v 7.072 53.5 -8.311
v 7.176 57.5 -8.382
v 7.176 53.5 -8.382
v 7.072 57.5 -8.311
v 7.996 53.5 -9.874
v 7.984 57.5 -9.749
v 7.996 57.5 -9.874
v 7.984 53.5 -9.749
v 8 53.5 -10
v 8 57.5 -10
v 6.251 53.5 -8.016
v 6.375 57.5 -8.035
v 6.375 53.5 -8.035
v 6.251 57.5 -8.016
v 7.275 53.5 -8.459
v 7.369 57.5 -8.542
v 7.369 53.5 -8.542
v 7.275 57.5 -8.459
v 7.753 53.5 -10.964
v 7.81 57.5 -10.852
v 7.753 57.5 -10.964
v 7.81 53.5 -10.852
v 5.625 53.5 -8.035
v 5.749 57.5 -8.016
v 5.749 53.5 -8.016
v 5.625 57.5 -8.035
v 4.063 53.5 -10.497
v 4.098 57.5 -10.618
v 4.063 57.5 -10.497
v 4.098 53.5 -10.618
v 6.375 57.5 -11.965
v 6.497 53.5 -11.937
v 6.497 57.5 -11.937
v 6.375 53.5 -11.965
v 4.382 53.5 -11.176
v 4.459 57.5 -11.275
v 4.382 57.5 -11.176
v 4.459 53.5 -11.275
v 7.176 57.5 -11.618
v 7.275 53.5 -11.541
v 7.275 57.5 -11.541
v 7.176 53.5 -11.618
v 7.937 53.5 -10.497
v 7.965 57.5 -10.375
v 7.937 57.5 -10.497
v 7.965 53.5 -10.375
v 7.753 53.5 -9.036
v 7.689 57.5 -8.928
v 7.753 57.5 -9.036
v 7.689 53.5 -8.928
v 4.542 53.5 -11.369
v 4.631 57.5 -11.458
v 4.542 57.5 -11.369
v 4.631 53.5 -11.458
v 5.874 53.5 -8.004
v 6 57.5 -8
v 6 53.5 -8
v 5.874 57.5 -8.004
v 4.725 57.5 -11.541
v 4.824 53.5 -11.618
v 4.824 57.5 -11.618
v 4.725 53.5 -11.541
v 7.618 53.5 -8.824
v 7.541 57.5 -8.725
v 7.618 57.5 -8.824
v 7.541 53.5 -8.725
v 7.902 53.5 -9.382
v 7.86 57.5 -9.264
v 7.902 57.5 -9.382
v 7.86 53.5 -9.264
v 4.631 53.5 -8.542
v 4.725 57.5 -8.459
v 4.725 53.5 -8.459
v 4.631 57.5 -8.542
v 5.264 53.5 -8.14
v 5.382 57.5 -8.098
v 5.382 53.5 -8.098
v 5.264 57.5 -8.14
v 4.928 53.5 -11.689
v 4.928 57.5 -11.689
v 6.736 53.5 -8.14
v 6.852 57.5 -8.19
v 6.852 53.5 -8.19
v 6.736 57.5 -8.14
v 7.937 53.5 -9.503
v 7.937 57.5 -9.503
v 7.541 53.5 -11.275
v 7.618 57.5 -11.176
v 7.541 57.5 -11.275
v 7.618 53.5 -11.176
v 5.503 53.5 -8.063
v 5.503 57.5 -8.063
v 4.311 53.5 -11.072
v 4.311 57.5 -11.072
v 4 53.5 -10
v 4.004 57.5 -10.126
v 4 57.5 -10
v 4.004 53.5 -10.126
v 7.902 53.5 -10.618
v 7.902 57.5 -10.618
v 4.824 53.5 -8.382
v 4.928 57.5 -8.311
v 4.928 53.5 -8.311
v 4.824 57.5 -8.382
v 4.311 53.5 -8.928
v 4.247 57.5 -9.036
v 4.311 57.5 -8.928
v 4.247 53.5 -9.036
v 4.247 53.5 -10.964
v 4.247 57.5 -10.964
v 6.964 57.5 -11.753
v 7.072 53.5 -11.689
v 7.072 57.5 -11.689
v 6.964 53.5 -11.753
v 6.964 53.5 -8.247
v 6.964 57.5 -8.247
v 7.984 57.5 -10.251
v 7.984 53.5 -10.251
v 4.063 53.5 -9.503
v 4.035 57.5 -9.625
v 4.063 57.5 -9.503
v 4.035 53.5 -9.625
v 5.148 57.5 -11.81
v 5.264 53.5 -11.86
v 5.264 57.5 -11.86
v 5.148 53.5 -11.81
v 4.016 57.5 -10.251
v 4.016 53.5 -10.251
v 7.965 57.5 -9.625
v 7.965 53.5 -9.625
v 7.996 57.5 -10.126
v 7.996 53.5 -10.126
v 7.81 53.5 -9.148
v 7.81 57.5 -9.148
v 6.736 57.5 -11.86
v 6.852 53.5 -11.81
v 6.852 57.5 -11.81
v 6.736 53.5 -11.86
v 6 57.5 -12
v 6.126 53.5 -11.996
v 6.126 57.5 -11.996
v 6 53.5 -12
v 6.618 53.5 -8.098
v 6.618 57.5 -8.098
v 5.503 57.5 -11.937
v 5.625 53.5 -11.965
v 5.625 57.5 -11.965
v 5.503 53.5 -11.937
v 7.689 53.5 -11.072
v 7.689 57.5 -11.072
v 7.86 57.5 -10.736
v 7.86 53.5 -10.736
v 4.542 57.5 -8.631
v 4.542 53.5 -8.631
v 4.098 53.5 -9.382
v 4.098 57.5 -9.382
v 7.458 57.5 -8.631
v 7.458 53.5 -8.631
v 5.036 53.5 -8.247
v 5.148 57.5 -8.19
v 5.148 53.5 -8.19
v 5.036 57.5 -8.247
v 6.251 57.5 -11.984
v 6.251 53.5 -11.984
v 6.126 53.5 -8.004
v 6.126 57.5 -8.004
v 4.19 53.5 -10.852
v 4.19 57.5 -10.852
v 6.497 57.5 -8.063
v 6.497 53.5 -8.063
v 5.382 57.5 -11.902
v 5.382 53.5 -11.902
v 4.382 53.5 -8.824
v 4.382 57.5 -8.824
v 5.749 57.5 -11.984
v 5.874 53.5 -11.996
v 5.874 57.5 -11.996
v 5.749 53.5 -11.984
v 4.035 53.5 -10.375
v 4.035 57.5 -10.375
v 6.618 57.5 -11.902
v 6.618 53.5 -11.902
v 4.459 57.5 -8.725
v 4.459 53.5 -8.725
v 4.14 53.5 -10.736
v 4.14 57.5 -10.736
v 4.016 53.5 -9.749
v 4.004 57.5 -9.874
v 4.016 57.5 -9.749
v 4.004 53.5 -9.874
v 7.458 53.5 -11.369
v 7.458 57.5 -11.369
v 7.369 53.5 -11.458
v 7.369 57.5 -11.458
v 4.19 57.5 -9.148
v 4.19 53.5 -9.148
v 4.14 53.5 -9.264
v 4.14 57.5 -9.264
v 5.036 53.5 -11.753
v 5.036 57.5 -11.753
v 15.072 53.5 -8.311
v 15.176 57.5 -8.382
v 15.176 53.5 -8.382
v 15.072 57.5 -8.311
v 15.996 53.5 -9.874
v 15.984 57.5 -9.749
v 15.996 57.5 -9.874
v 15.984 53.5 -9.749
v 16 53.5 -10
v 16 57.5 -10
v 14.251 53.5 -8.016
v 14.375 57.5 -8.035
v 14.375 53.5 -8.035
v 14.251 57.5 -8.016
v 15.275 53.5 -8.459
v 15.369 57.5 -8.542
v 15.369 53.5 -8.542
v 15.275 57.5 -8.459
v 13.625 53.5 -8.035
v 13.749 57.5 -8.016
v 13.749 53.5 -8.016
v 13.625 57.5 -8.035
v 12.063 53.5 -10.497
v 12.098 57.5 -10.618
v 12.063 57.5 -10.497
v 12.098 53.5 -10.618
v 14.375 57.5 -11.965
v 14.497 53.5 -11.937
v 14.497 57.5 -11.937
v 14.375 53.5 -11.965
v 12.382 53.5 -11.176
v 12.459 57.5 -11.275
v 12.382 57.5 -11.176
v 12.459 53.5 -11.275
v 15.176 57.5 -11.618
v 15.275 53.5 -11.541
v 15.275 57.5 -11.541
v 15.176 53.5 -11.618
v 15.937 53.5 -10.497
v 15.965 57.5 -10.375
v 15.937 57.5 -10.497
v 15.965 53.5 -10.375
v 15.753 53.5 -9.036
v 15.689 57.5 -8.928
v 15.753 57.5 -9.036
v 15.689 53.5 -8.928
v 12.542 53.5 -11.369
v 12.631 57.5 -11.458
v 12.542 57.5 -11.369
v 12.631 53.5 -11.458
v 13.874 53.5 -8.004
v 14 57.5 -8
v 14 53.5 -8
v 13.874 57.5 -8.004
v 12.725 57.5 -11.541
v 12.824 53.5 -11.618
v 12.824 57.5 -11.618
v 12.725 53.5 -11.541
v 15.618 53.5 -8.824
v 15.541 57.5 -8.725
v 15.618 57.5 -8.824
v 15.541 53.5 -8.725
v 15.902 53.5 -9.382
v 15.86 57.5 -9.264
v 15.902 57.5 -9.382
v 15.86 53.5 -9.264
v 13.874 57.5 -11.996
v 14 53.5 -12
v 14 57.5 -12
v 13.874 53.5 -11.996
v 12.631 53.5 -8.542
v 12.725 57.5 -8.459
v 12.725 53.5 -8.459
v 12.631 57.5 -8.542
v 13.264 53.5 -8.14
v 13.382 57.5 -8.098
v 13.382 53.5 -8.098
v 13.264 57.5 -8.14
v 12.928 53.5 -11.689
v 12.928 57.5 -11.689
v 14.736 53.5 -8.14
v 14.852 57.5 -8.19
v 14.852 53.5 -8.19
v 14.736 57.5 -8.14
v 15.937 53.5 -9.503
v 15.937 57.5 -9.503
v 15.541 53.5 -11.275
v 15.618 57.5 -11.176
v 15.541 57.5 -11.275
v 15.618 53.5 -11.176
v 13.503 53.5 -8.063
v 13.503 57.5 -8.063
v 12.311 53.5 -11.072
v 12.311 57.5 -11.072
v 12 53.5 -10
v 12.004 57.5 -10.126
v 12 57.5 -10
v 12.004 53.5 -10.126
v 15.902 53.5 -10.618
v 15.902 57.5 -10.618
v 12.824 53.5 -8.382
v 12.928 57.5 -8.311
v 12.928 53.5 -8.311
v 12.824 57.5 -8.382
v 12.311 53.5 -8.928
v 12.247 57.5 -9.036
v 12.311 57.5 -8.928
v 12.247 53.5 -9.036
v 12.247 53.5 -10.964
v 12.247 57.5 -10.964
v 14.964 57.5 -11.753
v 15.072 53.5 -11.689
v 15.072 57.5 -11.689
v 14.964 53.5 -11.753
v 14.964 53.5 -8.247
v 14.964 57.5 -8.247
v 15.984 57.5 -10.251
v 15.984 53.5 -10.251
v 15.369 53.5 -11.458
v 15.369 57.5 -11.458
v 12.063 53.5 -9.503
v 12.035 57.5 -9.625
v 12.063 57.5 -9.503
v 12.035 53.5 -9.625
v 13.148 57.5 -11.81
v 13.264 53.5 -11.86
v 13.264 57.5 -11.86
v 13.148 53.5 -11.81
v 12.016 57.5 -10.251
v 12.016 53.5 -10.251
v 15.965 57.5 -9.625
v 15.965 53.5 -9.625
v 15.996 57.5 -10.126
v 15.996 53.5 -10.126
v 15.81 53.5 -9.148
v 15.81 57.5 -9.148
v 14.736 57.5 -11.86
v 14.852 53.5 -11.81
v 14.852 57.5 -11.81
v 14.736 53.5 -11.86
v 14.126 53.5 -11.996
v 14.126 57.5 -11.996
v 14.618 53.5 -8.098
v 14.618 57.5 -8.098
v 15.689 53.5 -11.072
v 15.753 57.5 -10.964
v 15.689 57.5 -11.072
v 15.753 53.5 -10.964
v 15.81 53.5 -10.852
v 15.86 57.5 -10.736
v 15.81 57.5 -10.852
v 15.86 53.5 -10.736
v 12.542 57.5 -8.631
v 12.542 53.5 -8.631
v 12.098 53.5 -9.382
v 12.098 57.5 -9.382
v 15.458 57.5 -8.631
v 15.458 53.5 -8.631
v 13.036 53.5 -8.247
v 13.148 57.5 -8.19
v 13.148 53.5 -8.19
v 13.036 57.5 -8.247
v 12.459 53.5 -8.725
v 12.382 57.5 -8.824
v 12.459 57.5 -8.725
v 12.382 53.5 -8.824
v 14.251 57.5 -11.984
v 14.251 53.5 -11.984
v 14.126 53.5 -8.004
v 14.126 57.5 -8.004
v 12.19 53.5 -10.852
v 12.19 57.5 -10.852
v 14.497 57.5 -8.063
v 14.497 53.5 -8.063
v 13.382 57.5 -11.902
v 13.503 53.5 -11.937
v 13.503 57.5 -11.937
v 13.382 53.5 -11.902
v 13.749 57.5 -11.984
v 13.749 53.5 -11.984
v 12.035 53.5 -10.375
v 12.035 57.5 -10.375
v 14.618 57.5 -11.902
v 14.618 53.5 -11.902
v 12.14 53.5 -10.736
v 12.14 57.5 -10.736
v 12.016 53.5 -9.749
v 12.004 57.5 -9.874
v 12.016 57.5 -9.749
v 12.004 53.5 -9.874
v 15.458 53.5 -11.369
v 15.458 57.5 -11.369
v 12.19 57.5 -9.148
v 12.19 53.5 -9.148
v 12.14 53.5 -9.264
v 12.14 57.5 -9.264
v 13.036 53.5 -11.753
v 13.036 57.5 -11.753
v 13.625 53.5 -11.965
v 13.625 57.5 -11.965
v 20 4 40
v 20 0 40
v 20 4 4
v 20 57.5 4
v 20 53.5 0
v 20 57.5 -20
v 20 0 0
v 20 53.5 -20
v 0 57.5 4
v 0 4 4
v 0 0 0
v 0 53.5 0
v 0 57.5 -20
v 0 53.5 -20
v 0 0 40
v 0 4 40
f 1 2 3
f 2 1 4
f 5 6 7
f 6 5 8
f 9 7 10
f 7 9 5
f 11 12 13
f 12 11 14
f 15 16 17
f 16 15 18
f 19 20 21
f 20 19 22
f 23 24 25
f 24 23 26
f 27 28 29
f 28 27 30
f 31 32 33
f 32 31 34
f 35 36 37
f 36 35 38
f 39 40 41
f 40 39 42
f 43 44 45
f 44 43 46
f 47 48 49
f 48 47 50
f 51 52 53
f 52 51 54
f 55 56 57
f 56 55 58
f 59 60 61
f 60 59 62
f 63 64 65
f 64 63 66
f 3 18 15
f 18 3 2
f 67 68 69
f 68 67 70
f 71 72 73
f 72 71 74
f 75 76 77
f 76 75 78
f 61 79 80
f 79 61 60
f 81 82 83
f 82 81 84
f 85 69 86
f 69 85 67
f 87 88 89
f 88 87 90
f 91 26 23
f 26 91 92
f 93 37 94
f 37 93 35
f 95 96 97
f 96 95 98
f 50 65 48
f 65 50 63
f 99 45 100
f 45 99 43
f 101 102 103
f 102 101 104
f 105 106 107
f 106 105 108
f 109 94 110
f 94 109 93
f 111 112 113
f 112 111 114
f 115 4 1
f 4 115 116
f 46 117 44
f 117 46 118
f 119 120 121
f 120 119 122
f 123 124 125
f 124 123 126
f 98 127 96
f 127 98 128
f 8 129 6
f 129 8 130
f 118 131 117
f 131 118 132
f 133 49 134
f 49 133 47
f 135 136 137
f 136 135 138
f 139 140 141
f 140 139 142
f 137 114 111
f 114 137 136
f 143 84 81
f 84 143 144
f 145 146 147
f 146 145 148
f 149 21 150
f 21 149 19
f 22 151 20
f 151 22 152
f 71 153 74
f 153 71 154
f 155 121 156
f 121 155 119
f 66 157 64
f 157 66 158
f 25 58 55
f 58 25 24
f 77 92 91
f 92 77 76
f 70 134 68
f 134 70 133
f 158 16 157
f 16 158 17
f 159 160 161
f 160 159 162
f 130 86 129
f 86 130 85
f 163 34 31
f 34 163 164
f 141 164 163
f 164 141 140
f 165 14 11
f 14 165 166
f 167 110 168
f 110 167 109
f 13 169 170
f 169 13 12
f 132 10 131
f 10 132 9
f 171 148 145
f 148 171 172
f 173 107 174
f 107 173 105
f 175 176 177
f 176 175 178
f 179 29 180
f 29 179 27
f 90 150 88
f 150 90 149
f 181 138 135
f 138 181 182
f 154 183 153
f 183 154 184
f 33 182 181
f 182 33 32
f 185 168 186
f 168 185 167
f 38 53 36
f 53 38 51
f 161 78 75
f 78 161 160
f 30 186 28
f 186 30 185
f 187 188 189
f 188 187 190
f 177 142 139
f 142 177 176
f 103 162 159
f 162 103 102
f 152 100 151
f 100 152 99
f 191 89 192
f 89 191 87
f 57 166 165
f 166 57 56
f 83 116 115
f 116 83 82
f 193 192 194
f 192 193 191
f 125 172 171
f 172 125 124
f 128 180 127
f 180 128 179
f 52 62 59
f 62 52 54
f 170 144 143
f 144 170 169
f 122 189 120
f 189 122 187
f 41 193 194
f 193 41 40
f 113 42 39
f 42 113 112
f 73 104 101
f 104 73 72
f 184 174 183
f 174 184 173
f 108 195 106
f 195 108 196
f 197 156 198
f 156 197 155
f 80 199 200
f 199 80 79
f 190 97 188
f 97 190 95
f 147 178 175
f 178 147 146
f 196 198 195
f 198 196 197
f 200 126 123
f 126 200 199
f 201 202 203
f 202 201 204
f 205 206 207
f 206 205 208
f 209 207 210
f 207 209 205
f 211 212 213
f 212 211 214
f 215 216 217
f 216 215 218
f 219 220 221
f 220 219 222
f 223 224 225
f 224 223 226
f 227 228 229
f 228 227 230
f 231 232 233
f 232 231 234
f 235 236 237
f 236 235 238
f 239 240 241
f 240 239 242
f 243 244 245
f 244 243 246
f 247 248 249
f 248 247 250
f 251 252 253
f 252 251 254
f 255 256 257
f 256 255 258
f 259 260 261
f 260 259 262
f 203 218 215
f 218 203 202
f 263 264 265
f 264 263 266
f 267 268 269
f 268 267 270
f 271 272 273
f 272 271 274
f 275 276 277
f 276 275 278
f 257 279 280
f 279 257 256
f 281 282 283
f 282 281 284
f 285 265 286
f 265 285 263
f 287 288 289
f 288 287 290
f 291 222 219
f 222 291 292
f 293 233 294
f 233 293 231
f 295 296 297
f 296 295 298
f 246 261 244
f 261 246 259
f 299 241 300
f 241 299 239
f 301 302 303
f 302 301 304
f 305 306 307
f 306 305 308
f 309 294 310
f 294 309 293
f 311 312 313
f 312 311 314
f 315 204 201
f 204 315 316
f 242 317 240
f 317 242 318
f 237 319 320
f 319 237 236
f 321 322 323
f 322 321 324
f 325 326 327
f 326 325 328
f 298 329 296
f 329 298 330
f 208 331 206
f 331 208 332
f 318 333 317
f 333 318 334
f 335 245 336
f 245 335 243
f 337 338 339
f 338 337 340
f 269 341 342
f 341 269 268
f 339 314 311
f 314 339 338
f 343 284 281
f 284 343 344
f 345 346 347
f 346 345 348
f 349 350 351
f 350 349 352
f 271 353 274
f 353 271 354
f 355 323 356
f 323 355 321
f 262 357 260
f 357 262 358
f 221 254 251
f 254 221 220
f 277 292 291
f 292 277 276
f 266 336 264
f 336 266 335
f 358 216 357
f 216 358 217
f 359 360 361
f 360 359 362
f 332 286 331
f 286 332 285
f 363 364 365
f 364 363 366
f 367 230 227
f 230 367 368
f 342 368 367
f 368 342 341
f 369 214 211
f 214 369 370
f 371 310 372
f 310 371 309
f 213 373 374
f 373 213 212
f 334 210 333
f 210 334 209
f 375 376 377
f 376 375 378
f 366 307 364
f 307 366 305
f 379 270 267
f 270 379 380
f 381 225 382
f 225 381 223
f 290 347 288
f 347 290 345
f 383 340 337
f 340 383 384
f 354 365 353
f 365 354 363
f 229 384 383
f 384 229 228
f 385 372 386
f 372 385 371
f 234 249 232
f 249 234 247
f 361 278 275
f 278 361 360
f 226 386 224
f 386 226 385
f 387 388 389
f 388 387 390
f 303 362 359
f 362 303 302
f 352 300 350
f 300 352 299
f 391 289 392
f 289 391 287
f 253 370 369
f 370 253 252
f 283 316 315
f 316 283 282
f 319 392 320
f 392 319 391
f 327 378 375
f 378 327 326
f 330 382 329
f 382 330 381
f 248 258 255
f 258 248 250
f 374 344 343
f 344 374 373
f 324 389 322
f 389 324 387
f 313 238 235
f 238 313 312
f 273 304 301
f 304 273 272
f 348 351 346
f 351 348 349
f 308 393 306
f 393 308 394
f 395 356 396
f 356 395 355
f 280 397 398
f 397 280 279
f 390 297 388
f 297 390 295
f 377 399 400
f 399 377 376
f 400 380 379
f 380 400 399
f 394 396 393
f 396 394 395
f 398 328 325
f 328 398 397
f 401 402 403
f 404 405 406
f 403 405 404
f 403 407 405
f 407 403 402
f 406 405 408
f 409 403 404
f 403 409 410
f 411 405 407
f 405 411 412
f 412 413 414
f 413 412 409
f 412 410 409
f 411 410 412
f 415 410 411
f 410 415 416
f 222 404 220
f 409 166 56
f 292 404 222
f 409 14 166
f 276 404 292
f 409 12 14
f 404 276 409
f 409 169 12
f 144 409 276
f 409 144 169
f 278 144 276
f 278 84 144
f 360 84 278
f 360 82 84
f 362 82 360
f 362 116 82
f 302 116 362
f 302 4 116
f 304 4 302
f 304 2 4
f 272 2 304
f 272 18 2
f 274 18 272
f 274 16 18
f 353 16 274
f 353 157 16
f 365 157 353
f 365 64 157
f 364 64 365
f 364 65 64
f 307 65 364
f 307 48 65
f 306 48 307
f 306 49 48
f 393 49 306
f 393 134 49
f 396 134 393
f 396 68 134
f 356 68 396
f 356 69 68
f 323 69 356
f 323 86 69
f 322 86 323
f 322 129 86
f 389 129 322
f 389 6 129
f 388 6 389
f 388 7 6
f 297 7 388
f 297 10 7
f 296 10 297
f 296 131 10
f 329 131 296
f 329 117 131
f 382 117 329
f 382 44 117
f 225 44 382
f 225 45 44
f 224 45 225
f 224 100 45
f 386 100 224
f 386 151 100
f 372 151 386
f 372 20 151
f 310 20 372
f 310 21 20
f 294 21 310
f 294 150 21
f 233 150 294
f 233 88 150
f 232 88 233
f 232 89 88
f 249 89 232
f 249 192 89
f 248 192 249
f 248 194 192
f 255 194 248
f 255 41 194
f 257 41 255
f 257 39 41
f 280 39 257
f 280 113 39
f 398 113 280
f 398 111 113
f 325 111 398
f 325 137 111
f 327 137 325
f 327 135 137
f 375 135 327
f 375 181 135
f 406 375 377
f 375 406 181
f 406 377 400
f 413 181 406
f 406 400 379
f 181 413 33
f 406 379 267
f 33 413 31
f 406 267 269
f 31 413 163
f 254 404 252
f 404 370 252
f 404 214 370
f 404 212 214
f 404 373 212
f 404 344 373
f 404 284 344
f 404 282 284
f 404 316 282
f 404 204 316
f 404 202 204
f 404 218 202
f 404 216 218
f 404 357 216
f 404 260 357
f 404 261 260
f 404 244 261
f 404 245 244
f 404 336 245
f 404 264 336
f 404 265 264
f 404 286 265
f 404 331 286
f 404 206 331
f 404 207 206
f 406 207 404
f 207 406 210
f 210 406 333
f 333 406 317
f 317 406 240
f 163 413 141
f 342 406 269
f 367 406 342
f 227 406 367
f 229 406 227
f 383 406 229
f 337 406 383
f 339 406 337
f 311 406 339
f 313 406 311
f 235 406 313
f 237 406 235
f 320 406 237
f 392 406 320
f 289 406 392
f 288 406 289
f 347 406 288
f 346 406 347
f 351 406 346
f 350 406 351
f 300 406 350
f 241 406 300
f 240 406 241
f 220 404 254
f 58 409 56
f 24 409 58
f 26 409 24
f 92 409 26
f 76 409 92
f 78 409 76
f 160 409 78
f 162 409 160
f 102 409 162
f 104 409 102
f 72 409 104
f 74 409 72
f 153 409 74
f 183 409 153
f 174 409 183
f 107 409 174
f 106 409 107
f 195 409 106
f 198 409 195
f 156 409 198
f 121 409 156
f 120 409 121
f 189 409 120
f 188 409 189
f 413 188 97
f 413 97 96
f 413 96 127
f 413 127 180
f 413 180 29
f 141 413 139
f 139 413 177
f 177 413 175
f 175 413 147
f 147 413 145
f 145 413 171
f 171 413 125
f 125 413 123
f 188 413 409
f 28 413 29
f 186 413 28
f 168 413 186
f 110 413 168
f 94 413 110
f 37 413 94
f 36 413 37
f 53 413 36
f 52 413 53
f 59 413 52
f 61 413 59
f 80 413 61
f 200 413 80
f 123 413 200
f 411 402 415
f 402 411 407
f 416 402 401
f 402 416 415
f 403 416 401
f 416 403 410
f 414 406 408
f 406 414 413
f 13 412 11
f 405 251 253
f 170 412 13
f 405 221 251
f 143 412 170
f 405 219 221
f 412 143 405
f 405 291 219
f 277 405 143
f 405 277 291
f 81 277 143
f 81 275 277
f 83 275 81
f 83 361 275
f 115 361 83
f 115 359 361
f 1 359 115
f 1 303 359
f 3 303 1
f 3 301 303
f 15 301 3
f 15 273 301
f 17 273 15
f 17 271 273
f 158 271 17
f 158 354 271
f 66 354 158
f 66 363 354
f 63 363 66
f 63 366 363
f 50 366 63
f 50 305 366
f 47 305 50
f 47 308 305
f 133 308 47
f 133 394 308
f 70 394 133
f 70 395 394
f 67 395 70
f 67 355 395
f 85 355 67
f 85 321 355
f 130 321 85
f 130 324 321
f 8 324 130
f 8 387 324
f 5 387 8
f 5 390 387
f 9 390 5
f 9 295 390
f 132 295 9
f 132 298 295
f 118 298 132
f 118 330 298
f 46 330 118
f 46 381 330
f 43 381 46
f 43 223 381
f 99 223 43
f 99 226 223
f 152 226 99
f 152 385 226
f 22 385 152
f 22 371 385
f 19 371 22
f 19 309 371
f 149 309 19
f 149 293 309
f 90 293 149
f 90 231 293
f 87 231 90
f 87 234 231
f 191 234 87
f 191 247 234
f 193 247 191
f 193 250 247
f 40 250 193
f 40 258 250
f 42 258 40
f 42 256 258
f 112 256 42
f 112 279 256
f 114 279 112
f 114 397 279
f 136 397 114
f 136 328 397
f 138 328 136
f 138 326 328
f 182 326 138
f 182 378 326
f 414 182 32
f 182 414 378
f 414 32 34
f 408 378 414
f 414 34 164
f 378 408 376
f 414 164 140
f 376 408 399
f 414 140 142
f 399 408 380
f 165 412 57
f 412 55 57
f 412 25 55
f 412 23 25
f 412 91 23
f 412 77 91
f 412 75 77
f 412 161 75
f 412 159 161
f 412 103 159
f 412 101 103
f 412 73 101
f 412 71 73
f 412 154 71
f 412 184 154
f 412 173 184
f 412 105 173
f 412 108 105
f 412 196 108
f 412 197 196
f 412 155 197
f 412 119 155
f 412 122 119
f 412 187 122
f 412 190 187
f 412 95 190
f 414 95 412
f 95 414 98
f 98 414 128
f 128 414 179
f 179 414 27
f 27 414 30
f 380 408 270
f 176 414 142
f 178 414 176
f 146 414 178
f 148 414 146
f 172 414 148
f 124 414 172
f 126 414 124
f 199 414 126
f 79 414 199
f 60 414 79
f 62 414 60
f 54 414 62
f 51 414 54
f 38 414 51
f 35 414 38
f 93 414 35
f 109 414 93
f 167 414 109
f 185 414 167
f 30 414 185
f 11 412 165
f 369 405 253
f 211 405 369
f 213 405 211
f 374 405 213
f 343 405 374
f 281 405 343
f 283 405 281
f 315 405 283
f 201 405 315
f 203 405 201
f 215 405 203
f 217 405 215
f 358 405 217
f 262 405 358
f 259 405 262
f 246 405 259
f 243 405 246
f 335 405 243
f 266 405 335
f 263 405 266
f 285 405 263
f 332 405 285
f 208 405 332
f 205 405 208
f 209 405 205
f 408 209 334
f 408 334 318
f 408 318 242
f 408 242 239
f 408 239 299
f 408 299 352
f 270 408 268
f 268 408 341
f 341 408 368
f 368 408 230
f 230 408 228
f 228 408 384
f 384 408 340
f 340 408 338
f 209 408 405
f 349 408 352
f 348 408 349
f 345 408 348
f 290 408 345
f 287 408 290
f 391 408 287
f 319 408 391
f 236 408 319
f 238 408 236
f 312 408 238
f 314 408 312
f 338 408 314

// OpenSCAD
difference(){
	union(){


      translate([0,0,0]){
            cube([20,57.5,4], center=false);
      }
      translate([0,0,0]){
            cube([20,4,40], center=false);
      }
      translate([0,53.5,-20]){
            cube([20,4,20], center=false);
      }




}
	union() {

        translate([6,100,-10]){
            rotate([90,0,0]){
                cylinder(h=500, r=2, $fn=100, center=false);
            }
        }
        translate([14,100,-10]){
            rotate([90,0,0]){
                cylinder(h=500, r=2, $fn=100, center=false);
            }
        }




    

      
	}
}
